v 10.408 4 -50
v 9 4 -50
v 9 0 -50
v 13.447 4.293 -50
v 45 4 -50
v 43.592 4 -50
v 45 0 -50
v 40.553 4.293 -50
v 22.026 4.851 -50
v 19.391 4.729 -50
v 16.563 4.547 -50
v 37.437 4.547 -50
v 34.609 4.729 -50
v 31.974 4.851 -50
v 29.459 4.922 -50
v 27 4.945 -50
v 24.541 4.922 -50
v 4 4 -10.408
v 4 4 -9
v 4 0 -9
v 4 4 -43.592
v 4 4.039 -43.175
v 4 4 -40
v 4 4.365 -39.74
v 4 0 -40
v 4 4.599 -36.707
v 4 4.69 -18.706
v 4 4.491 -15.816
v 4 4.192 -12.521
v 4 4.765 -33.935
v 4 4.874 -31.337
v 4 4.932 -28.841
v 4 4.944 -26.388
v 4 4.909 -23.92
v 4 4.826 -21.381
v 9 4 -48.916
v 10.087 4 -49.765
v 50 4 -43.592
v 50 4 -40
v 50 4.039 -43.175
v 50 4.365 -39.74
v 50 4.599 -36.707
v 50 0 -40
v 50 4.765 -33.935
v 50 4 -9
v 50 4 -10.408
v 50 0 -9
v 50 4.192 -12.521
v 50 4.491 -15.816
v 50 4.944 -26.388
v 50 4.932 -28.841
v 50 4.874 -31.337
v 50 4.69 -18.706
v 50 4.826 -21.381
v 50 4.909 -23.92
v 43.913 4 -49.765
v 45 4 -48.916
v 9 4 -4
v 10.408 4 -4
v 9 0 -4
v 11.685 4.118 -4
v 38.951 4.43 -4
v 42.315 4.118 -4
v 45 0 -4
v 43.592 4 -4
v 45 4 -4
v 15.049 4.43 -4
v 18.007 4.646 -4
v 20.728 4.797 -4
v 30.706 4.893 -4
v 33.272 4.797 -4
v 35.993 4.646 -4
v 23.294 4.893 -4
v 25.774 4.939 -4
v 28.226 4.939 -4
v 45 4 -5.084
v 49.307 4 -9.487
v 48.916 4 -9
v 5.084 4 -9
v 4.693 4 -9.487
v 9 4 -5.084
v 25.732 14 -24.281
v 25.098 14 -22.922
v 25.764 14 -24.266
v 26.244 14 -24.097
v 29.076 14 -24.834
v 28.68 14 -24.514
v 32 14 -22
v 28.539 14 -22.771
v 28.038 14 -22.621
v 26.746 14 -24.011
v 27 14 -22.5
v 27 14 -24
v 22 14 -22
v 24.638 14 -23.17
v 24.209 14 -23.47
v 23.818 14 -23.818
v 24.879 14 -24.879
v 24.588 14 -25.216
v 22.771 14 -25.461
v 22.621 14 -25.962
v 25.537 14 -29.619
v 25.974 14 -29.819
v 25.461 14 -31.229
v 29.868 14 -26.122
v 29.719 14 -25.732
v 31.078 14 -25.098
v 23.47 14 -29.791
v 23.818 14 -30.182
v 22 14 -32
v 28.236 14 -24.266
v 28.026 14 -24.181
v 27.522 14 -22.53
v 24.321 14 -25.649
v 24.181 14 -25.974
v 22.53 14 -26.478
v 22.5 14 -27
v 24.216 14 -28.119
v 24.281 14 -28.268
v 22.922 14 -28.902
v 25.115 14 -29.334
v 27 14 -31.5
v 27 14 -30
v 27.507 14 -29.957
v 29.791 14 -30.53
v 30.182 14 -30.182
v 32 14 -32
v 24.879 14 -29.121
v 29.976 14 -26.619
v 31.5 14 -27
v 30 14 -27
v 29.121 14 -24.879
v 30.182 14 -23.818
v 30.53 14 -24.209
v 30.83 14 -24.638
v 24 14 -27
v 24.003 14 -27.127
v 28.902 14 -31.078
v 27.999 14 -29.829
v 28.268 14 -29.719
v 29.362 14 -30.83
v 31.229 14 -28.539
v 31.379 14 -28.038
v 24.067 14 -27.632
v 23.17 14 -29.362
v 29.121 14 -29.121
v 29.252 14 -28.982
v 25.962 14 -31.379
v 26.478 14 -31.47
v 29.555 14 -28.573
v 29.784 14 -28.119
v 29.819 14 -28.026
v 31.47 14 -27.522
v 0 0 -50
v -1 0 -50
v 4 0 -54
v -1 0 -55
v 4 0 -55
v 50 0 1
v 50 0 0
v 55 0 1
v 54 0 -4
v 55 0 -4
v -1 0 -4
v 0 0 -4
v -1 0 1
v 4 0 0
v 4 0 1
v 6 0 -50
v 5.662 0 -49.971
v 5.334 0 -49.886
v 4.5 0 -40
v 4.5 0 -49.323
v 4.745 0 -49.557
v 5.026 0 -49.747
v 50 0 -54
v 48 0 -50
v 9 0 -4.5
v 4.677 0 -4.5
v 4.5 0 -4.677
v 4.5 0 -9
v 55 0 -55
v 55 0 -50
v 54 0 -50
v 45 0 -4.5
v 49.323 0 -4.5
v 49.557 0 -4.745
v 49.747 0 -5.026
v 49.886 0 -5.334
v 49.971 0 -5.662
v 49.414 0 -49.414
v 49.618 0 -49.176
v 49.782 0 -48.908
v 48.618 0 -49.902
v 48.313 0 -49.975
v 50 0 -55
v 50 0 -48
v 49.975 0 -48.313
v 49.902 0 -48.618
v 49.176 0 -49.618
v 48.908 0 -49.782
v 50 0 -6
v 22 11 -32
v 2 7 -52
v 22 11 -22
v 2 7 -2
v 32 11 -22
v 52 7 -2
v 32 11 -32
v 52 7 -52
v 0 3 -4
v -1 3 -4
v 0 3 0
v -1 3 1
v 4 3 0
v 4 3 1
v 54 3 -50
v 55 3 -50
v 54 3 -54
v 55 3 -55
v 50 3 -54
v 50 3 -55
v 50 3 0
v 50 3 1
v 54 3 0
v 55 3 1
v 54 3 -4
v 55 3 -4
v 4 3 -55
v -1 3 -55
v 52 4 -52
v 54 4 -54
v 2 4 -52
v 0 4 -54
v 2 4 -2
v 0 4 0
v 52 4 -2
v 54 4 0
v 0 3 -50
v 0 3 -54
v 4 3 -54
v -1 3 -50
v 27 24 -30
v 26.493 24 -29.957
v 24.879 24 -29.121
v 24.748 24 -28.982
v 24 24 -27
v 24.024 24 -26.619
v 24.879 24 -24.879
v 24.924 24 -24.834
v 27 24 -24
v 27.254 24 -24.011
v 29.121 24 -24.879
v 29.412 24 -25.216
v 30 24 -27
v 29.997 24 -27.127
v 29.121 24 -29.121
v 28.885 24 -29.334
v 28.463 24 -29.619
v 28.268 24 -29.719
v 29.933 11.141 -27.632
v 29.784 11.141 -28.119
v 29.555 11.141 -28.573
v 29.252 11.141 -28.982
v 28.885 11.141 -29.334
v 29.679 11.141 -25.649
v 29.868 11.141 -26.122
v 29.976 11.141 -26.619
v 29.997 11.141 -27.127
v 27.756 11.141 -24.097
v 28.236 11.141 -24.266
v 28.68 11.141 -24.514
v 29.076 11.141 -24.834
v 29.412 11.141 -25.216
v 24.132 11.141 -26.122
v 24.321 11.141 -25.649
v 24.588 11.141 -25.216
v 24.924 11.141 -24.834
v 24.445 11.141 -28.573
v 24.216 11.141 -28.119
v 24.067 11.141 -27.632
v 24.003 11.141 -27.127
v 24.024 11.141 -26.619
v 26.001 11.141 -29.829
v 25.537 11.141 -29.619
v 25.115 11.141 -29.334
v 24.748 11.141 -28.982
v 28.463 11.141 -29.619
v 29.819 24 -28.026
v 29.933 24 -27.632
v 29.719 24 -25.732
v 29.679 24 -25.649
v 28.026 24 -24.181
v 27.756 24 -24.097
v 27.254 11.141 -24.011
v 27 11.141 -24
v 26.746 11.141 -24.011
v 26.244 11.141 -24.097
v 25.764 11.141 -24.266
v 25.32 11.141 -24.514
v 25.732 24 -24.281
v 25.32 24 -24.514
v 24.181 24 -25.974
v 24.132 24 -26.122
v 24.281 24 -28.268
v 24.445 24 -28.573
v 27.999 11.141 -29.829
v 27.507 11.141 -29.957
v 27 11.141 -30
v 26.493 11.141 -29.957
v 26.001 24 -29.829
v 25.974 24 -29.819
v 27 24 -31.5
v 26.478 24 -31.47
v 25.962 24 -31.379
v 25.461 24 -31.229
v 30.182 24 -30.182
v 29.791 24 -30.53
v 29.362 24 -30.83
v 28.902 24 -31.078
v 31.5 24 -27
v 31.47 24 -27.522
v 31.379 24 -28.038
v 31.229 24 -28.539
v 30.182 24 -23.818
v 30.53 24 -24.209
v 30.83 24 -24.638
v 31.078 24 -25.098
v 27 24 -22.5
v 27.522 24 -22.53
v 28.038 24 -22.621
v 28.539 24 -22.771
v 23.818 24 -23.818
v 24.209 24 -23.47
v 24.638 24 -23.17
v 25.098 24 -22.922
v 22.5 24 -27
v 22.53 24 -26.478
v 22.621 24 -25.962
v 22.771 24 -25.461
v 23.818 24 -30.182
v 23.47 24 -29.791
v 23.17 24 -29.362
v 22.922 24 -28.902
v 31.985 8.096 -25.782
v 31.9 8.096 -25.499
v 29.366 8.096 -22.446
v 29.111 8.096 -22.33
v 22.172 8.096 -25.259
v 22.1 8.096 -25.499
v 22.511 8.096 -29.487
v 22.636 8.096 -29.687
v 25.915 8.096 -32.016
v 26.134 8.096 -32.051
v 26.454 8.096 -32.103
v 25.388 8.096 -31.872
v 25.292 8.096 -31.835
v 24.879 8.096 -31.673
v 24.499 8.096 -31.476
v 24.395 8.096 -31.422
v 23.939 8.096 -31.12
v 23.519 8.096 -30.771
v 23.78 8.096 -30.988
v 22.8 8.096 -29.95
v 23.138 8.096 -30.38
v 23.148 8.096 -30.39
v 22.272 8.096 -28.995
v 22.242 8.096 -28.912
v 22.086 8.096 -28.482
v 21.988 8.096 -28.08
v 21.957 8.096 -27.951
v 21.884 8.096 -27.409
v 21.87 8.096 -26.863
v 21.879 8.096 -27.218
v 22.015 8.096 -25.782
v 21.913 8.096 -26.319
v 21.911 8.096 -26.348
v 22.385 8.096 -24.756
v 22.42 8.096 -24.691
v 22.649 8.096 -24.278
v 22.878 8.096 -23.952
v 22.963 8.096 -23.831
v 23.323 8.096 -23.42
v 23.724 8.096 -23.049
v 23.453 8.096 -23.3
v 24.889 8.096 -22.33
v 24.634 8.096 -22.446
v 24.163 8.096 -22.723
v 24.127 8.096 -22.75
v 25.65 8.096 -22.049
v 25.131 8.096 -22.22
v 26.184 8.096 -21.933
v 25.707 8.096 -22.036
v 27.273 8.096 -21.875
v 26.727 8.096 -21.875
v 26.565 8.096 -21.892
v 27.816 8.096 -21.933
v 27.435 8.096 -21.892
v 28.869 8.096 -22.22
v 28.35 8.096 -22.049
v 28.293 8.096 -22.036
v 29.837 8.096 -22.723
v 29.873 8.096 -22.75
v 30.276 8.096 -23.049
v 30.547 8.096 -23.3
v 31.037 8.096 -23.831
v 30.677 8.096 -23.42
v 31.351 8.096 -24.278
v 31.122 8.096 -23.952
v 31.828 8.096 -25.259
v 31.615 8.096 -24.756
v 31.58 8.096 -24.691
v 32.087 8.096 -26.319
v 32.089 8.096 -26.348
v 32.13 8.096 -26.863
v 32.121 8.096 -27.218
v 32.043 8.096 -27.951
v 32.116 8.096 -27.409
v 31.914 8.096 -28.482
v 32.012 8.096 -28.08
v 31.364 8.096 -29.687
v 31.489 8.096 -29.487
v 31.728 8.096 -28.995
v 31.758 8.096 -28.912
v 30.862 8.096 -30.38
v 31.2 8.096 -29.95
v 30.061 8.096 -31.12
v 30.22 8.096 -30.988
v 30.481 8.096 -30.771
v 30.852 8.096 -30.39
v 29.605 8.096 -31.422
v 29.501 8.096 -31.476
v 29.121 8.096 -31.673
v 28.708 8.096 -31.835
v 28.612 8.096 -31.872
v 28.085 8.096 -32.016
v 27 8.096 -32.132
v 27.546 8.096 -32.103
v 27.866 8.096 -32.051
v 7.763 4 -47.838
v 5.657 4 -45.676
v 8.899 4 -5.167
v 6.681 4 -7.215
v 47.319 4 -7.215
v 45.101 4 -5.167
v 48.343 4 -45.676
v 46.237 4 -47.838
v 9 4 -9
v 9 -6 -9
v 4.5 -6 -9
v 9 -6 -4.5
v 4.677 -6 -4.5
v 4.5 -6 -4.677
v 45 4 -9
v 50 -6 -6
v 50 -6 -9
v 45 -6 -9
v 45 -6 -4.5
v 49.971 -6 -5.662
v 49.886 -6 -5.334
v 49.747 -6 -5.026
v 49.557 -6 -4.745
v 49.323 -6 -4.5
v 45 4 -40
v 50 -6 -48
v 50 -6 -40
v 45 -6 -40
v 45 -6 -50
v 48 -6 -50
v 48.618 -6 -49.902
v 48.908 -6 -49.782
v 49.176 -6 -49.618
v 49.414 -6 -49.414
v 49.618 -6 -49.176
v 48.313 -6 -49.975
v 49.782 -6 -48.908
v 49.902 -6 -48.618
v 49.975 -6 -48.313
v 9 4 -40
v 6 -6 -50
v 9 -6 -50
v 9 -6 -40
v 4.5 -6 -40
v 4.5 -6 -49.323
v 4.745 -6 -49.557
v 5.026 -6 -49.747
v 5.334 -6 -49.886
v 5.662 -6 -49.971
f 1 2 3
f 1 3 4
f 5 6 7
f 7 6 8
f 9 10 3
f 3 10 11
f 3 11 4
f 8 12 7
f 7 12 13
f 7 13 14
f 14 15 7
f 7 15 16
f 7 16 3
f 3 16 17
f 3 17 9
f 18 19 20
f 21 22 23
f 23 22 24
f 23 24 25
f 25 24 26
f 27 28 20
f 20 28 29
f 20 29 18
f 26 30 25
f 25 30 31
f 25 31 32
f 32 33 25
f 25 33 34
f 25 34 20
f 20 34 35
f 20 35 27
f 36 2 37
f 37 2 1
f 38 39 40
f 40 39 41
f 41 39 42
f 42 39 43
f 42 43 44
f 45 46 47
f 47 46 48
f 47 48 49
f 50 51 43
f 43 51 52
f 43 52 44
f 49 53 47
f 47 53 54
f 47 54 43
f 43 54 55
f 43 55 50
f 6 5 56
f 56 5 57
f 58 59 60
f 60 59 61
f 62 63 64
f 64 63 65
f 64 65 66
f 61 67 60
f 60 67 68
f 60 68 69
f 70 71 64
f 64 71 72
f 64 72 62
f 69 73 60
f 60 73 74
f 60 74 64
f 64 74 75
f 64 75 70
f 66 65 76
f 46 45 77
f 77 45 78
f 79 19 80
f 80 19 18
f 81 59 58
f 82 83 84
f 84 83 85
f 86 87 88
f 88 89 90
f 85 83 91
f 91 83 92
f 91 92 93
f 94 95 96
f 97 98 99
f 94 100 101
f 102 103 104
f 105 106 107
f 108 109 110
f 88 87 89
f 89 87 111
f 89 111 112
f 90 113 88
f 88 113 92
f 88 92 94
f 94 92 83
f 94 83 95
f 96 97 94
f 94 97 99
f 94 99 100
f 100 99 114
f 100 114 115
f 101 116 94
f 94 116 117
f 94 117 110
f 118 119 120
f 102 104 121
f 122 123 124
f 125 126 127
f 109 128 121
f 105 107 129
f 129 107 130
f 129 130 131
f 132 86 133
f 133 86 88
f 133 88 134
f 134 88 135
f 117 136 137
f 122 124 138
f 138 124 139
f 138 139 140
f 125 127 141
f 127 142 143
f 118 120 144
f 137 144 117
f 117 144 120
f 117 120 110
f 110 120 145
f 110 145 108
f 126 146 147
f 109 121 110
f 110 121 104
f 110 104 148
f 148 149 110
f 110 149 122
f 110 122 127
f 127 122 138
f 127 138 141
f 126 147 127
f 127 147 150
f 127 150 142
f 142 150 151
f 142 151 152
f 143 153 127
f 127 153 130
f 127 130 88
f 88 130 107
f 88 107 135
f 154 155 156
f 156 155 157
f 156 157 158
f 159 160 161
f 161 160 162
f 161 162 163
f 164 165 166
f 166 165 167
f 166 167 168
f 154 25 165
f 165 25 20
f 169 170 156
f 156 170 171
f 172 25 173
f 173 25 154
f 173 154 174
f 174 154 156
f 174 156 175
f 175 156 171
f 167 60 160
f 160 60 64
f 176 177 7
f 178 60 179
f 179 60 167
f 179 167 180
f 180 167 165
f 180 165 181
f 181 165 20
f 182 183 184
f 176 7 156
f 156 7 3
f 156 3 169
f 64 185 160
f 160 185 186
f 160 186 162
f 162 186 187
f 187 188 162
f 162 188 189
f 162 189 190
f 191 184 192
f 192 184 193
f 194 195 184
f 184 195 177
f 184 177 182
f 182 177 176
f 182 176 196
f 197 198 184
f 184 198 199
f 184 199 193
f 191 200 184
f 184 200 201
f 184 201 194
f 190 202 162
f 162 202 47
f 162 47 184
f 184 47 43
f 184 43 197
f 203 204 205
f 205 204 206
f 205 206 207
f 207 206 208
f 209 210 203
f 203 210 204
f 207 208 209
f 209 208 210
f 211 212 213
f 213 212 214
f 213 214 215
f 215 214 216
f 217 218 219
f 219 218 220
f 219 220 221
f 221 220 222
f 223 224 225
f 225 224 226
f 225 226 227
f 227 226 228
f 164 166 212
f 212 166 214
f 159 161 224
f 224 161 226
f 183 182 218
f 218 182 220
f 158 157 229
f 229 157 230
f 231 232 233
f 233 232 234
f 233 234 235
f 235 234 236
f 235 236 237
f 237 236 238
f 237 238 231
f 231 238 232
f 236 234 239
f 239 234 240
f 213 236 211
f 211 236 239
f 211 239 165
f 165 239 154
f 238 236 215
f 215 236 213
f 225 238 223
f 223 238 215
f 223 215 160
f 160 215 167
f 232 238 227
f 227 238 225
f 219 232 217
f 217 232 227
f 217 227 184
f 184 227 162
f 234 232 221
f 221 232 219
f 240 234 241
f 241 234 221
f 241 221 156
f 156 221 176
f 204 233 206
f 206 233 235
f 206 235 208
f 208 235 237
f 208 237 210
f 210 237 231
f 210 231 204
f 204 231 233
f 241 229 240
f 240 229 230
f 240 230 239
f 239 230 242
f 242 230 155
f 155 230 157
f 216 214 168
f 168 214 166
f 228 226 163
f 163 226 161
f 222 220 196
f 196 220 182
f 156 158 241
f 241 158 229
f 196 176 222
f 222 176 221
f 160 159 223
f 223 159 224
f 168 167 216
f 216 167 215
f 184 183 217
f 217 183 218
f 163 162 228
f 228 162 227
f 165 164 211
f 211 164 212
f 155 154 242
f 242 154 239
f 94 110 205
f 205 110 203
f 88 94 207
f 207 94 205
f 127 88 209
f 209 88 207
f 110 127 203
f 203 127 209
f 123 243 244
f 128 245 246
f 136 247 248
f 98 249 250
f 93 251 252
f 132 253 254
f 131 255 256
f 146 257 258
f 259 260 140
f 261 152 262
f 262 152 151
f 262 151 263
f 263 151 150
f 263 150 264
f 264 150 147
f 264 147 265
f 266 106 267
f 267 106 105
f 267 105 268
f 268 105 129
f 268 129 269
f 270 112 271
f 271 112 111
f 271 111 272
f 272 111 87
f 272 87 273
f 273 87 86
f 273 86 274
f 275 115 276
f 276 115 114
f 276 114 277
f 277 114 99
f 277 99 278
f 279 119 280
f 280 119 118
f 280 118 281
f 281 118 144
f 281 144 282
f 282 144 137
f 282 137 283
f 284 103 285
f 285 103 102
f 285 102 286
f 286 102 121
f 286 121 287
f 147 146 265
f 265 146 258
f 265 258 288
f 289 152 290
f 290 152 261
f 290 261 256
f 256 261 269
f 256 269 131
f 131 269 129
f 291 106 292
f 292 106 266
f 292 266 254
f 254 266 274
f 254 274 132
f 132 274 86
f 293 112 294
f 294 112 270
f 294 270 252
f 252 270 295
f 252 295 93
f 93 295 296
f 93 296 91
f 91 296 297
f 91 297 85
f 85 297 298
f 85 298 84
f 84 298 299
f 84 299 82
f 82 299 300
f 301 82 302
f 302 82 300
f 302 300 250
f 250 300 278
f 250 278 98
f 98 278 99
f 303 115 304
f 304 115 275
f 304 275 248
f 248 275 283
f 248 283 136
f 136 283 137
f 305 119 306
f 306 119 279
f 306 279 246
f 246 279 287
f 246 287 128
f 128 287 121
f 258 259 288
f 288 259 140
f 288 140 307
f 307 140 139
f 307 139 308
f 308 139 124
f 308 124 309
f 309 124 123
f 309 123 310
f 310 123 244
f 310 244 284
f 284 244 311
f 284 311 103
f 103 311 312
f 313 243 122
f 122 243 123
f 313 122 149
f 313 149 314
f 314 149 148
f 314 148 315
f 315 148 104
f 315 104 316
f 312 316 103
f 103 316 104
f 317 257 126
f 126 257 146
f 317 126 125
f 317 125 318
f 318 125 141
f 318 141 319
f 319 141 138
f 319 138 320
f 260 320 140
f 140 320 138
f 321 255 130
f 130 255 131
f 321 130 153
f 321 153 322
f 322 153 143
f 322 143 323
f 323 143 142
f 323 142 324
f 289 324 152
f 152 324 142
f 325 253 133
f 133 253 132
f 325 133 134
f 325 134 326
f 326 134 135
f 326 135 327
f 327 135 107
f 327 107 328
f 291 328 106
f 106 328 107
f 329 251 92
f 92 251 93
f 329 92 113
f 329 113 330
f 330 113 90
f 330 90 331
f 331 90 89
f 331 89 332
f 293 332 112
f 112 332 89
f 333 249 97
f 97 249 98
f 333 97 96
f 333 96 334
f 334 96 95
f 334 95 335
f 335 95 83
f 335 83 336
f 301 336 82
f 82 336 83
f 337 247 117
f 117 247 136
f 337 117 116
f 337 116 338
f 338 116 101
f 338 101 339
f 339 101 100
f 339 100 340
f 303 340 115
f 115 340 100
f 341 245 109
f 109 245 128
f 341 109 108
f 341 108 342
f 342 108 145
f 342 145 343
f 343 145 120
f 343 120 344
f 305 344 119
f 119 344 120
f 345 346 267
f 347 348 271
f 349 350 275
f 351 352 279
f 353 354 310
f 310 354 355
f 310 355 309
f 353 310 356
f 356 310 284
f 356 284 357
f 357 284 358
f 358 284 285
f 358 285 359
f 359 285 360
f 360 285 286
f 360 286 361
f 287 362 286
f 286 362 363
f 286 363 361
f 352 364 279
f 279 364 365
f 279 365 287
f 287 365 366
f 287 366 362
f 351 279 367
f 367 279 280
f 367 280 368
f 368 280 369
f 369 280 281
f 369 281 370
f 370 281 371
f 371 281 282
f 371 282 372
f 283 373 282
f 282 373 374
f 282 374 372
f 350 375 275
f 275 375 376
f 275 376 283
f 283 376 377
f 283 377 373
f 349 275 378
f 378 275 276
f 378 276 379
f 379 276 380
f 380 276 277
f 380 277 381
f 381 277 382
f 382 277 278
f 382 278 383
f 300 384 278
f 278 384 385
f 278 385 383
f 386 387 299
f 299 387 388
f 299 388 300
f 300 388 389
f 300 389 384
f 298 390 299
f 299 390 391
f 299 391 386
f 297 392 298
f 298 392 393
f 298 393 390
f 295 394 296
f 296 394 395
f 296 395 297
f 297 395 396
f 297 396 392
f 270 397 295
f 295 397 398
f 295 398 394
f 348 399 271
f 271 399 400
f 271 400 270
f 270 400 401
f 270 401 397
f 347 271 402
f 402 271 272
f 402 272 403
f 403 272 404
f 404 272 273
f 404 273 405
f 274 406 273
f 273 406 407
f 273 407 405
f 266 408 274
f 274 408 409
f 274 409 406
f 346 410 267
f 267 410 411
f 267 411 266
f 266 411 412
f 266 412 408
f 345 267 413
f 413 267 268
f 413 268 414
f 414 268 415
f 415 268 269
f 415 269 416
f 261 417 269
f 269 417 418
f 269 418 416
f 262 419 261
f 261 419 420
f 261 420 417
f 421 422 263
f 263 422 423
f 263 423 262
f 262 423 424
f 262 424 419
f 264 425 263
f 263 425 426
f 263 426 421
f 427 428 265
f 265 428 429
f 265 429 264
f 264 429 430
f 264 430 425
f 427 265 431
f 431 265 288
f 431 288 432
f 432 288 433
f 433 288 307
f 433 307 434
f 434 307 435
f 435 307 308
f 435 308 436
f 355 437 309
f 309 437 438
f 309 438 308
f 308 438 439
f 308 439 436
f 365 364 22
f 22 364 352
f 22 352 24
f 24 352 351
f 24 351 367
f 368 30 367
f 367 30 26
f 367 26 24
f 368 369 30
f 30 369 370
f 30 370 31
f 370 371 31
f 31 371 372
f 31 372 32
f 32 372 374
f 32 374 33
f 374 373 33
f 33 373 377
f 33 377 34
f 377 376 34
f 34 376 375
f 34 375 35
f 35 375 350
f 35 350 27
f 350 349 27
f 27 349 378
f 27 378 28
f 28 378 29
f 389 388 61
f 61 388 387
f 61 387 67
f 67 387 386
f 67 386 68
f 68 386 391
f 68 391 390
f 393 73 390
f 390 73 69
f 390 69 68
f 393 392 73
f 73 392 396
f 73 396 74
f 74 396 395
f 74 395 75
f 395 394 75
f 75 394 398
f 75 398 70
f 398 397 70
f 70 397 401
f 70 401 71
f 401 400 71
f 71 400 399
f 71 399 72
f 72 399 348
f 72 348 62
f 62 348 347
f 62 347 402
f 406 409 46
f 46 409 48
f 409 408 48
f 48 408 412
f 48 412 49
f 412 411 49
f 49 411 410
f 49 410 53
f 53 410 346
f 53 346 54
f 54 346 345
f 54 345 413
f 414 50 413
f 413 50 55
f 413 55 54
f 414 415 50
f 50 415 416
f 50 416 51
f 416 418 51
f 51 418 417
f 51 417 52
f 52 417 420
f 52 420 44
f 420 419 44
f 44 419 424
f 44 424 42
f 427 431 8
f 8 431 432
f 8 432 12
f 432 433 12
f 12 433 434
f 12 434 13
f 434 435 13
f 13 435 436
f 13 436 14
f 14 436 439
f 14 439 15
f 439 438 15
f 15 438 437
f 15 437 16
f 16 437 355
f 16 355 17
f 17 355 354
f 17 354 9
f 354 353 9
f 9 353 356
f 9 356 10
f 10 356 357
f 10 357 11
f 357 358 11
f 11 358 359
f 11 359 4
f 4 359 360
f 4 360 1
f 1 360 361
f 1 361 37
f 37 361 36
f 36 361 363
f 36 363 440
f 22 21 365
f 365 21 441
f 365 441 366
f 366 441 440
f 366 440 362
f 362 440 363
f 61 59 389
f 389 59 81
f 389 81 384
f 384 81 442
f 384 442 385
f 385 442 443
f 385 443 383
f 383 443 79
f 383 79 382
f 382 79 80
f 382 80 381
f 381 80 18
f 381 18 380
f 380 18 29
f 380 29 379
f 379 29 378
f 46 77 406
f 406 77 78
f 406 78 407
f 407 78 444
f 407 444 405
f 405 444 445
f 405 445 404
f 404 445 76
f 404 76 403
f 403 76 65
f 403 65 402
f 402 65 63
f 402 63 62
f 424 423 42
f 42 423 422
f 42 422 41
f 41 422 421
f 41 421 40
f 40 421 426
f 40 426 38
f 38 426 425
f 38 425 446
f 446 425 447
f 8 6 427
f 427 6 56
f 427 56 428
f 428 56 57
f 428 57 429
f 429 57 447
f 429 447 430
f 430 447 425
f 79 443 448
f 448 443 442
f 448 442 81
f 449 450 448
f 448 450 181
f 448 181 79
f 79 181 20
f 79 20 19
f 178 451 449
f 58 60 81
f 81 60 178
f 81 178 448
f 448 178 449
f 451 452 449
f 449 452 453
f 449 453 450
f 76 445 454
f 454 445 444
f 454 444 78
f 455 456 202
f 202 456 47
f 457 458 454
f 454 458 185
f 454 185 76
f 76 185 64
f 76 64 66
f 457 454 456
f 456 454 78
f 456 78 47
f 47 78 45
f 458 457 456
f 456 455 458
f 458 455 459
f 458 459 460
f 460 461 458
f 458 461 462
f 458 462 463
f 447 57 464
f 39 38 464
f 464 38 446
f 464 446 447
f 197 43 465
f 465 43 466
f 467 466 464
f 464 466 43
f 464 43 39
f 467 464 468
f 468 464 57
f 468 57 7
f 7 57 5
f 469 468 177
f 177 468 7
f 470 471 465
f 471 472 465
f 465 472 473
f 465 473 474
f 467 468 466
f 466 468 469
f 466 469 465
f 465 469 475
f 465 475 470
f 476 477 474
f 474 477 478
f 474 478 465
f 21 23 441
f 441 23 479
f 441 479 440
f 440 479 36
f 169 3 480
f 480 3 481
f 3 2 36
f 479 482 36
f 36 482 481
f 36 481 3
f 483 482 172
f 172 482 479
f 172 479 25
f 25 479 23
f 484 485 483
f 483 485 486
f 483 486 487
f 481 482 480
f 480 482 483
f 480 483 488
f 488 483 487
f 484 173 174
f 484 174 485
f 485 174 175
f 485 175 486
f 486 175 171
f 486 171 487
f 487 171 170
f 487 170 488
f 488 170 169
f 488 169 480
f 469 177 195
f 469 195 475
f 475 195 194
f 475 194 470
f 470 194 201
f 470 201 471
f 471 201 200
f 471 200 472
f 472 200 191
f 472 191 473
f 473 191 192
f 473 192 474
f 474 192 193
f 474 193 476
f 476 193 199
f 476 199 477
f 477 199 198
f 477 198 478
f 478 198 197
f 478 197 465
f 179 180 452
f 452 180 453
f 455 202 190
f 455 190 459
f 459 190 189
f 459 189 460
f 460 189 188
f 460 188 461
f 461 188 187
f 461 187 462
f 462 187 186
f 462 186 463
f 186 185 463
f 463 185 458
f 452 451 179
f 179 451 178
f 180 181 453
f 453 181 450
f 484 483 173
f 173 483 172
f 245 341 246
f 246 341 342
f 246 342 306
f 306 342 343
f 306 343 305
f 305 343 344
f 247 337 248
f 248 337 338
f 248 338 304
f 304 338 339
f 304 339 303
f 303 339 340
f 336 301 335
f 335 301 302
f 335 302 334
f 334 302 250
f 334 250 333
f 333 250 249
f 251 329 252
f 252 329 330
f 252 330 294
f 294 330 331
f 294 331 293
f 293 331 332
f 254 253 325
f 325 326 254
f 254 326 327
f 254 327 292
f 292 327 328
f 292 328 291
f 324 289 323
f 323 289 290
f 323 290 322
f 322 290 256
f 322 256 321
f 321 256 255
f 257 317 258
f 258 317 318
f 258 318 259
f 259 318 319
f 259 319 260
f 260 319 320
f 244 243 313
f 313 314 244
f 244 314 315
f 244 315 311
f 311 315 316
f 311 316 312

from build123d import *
from build123d.topology import SkipClean

# Parameters (mm, degrees)
SKETCH_1_W          = 54
SKETCH_1_H          = 54
EXTRUDE_1_DEPTH     = 4
SKETCH_2_W          = 50
SKETCH_2_H          = 50
EXTRUDE_2_DEPTH     = 8
CHAMFER_1_SIZE      = 5
CHAMFER_1_SIZE_2    = 25
SKETCH_3_W          = 56
SKETCH_3_H          = 56
EXTRUDE_3_DEPTH     = 3
SKETCH_4_W          = 46
SKETCH_4_H          = 1
SKETCH_4_W_2        = 1
SKETCH_4_H_2        = 46
CUT_EXTRUDE_1_DEPTH = 3
EXTRUDE_START       = 10
SKETCH_5_W          = 10
SKETCH_5_H          = 10
EXTRUDE_4_DEPTH     = 4
EXTRUDE_5_DEPTH     = 10
SKETCH_10_W         = 46
SKETCH_10_H         = 46
CUT_EXTRUDE_2_DEPTH = 4
SKETCH_12_R         = 3
CUT_EXTRUDE_3_DEPTH = 15
CHAMFER_2_SIZE      = 5
CHAMFER_2_SIZE2     = 7.140740034
CHAMFER_3_SIZE      = 5
CHAMFER_3_SIZE_2    = 20.3603283
SKETCH_13_W         = 5
SKETCH_13_H         = 5
EXTRUDE_6_DEPTH     = 10
SKETCH_14_W         = 5
SKETCH_14_H         = 10
EXTRUDE_7_DEPTH     = 10
FILLET_1_R          = 2
CUT_EXTRUDE_4_DEPTH = 6
SKETCH_16_W         = 12.181950641
SKETCH_16_H         = 4.017842963
CUT_EXTRUDE_5_DEPTH = 82.012344772


with BuildPart() as part:
    # Эскиз1 → Бобышка-Вытянуть1 (new body)
    with BuildSketch(Plane(origin=(0, 0, 0), x_dir=(1, 0, 0), z_dir=(0, 1, 0))):
        with Locations((27, 27)):
            Rectangle(SKETCH_1_W, SKETCH_1_H)
    extrude(amount=EXTRUDE_1_DEPTH)

    # Эскиз2 → Бобышка-Вытянуть2 (add)
    with BuildSketch(Plane(origin=(0, 4, 0), x_dir=(1, 0, 0), z_dir=(0, 1, 0))):
        with Locations((27, 27)):
            Rectangle(SKETCH_2_W, SKETCH_2_H)
    extrude(amount=EXTRUDE_2_DEPTH)

    # Фаска1
    # the kernel refuses this chamfer: 25, 5 mm, written as the material it takes off along each edge
    with BuildSketch(Plane(origin=(2, 12, -116.953302157), x_dir=(-0.18544098588999025, -0.9826554028509427, 0), z_dir=(0, 0, 1)), Plane(origin=(-62.953302157, 12, -2), x_dir=(0, -0.9826554028509427, 0.18544098588999025), z_dir=(1, 0, 0)), Plane(origin=(52, 12, 62.953302157), x_dir=(0.18544098588999086, -0.9826554028509427, 0), z_dir=(0, 0, -1)), Plane(origin=(116.953302157, 12, -52), x_dir=(0, -0.9826554028509427, -0.18544098588999086), z_dir=(-1, 0, 0))) as chamfer_1_piece_1:
        Polygon((CHAMFER_1_SIZE * 0.982655402851, CHAMFER_1_SIZE * 0.18544098589), (-CHAMFER_1_SIZE_2 * 0.18544098589, CHAMFER_1_SIZE_2 * 0.982655402851), (0, 0), align=None)
    extrude(amount=179.906604315, mode=Mode.SUBTRACT)

    # Эскиз3 → Бобышка-Вытянуть3 (add)
    with BuildSketch(Plane(origin=(0, 0, 0), x_dir=(1, 0, 0), z_dir=(0, 1, 0))):
        with Locations((27, 27)):
            Rectangle(SKETCH_3_W, SKETCH_3_H)
    extrude(amount=EXTRUDE_3_DEPTH)

    # Эскиз4 → Вырез-Вытянуть1 (cut)
    with BuildSketch(Plane(origin=(0, 3, 0), x_dir=(1, 0, 0), z_dir=(0, 1, 0))):
        with Locations((27, 54.5)):
            Rectangle(SKETCH_4_W, SKETCH_4_H)
        with Locations((-0.5, 27)):
            Rectangle(SKETCH_4_W_2, SKETCH_4_H_2)
        with Locations((54.5, 27)):
            Rectangle(SKETCH_4_W_2, SKETCH_4_H_2)
        with Locations((27, -0.5)):
            Rectangle(SKETCH_4_W, SKETCH_4_H)
    extrude(amount=-CUT_EXTRUDE_1_DEPTH, mode=Mode.SUBTRACT)

    # Эскиз5 → Бобышка-Вытянуть4 (add)
    with BuildSketch(Plane(origin=(0, 0, 0), x_dir=(1, 0, 0), z_dir=(0, 1, 0)).offset(EXTRUDE_START)):
        with Locations((27, 27)):
            Rectangle(SKETCH_5_W, SKETCH_5_H)
    extrude(amount=EXTRUDE_4_DEPTH)

    # Эскиз6 → Бобышка-Вытянуть5 (add)
    with BuildSketch(Plane(origin=(0, 14, 0), x_dir=(1, 0, 0), z_dir=(0, 1, 0))):
        with BuildLine():
            Line((27, 30), (27, 31.5))
            ThreePointArc((27, 31.5), (26.2185832, 31.431634889), (25.460909355, 31.228616794))
            Line((25.460909355, 31.228616794), (25.97393957, 29.819077862))
            ThreePointArc((25.97393957, 29.819077862), (26.479055467, 29.954423259), (27, 30))
        make_face()
        with BuildLine():
            Line((29.121320344, 29.121320344), (30.181980515, 30.181980515))
            ThreePointArc((30.181980515, 30.181980515), (29.581093964, 30.686184199), (28.901782178, 31.078385042))
            Line((28.901782178, 31.078385042), (28.267854785, 29.718923361))
            ThreePointArc((28.267854785, 29.718923361), (28.720729309, 29.457456133), (29.121320344, 29.121320344))
        make_face()
        with BuildLine():
            Line((30, 27), (31.5, 27))
            ThreePointArc((31.5, 27), (31.431634889, 27.7814168), (31.228616794, 28.539090645))
            Line((31.228616794, 28.539090645), (29.819077862, 28.02606043))
            ThreePointArc((29.819077862, 28.02606043), (29.954423259, 27.520944533), (30, 27))
        make_face()
        with BuildLine():
            Line((29.121320344, 24.878679656), (30.181980515, 23.818019485))
            ThreePointArc((30.181980515, 23.818019485), (30.686184199, 24.418906036), (31.078385042, 25.098217822))
            Line((31.078385042, 25.098217822), (29.718923361, 25.732145215))
            ThreePointArc((29.718923361, 25.732145215), (29.457456133, 25.279270691), (29.121320344, 24.878679656))
        make_face()
        with BuildLine():
            Line((27, 24), (27, 22.5))
            ThreePointArc((27, 22.5), (27.7814168, 22.568365111), (28.539090645, 22.771383206))
            Line((28.539090645, 22.771383206), (28.02606043, 24.180922138))
            ThreePointArc((28.02606043, 24.180922138), (27.520944533, 24.045576741), (27, 24))
        make_face()
        with BuildLine():
            Line((24.878679656, 24.878679656), (23.818019485, 23.818019485))
            ThreePointArc((23.818019485, 23.818019485), (24.418906036, 23.313815801), (25.098217822, 22.921614958))
            Line((25.098217822, 22.921614958), (25.732145215, 24.281076639))
            ThreePointArc((25.732145215, 24.281076639), (25.279270691, 24.542543867), (24.878679656, 24.878679656))
        make_face()
        with BuildLine():
            Line((24, 27), (22.5, 27))
            ThreePointArc((22.5, 27), (22.568365111, 26.2185832), (22.771383206, 25.460909355))
            Line((22.771383206, 25.460909355), (24.180922138, 25.97393957))
            ThreePointArc((24.180922138, 25.97393957), (24.045576741, 26.479055467), (24, 27))
        make_face()
        with BuildLine():
            Line((24.878679656, 29.121320344), (23.818019485, 30.181980515))
            ThreePointArc((23.818019485, 30.181980515), (23.313815801, 29.581093964), (22.921614958, 28.901782178))
            Line((22.921614958, 28.901782178), (24.281076639, 28.267854785))
            ThreePointArc((24.281076639, 28.267854785), (24.542543867, 28.720729309), (24.878679656, 29.121320344))
        make_face()
    extrude(amount=EXTRUDE_5_DEPTH)

    # Эскиз9 → Повернуть1 (revolve)
    with BuildSketch(Plane(origin=(27, 0, 0), x_dir=(0, 0, -1), z_dir=(1, 0, 0))):
        with BuildLine():
            Line((27, 24), (33, 24))
            Line((33, 24), (28.599558116, 25.80595603))
            ThreePointArc((28.599558116, 25.80595603), (27.95267314, 26.60779708), (27, 27))
            Line((27, 27), (27, 24))
        make_face()
    revolve(axis=Axis((27, 24, -27), (0, 1, 0)))

    # Эскиз10 → Вырез-Вытянуть2 (cut)
    with BuildSketch(Plane(origin=(0, 0, 0), x_dir=(1, 0, 0), z_dir=(0, 1, 0))):
        with Locations((27, 27)):
            Rectangle(SKETCH_10_W, SKETCH_10_H)
    extrude(amount=CUT_EXTRUDE_2_DEPTH, mode=Mode.SUBTRACT)

    # Эскиз12 → Вырез-Вытянуть3 (cut)
    with SkipClean():  # the faces are left unmerged after this step: merging them gives an invalid solid
        with BuildSketch(Plane(origin=(0, 0, 0), x_dir=(1, 0, 0), z_dir=(0, 1, 0))):
            with Locations(Location((27, 27, 0), (0, 0, 270))):
                Circle(SKETCH_12_R)
        extrude(amount=CUT_EXTRUDE_3_DEPTH, mode=Mode.SUBTRACT)
    add(part.part.scale(1), mode=Mode.REPLACE)  # the faces are merged on a copy

    # Фаска2
    chamfer_2_edges = [part.edges().sort_by_distance(p)[0] for p in [
        (27, 4, -30),
    ]]
    chamfer_2_side = [part.faces().sort_by_distance(p)[0] for p in [
        (27, 4, -49.349461761),
    ]]
    chamfer(chamfer_2_edges, length=CHAMFER_2_SIZE, length2=CHAMFER_2_SIZE2, reference=chamfer_2_side[0])

    # Фаска3
    # the kernel refuses this chamfer: 20.3603283, 5 mm, written as the material it takes off along each edge
    with BuildSketch(Plane(origin=(27, 4, -27), x_dir=(0, 0, 1), z_dir=(1, 0, 0))) as chamfer_3_piece_1_section:
        Polygon((8 - CHAMFER_3_SIZE * 0.573576436351, -CHAMFER_3_SIZE * 0.819152044289), (8 + CHAMFER_3_SIZE_2, 0), (8, 0), align=None)
    chamfer_3_piece_1 = revolve(axis=Axis((27, 4, -27), (0, -1, 0)), mode=Mode.PRIVATE)
    chamfer_3_piece_1 = split(chamfer_3_piece_1, bisect_by=Plane(origin=(27, 5.887283675, -50), z_dir=(0, 0, 1)), keep=Keep.TOP, mode=Mode.PRIVATE)
    chamfer_3_piece_1 = split(chamfer_3_piece_1, bisect_by=Plane(origin=(4, 5.887283675, -43.717905574), z_dir=(1, 0, 0)), keep=Keep.TOP, mode=Mode.PRIVATE)
    chamfer_3_piece_1 = split(chamfer_3_piece_1, bisect_by=Plane(origin=(50, 5.887283675, -43.717905574), z_dir=(-1, 0, 0)), keep=Keep.TOP, mode=Mode.PRIVATE)
    chamfer_3_piece_1 = split(chamfer_3_piece_1, bisect_by=Plane(origin=(27, 5.887283675, -4), z_dir=(0, 0, -1)), keep=Keep.TOP, mode=Mode.PRIVATE)
    add(chamfer_3_piece_1, mode=Mode.SUBTRACT)

    # Эскиз13 → Бобышка-Вытянуть6 (add)
    with SkipClean():  # the faces are left unmerged after this step: merging them gives an invalid solid
        with BuildSketch(Plane.XZ.offset(-4)):
            with Locations((6.5, -6.5)):
                Rectangle(SKETCH_13_W, SKETCH_13_H)
            with Locations((47.5, -6.5)):
                Rectangle(SKETCH_13_W, SKETCH_13_H)
        extrude(amount=EXTRUDE_6_DEPTH)

    # Эскиз14 → Бобышка-Вытянуть7 (add)
    with SkipClean():  # the faces are left unmerged after this step: merging them gives an invalid solid
        with BuildSketch(Plane.XZ.offset(-4)):
            with Locations((47.5, -45)):
                Rectangle(SKETCH_14_W, SKETCH_14_H)
            with Locations((6.5, -45)):
                Rectangle(SKETCH_14_W, SKETCH_14_H)
        extrude(amount=EXTRUDE_7_DEPTH)

    # Скругление1
    fillet_1_edges = [part.edges().sort_by_distance(p)[0] for p in [
        (4, -3, -4),
        (50, -3, -4),
        (50, -3, -50),
        (4, -3, -50),
    ]]
    fillet(fillet_1_edges, radius=FILLET_1_R)

    # Эскиз15 → Вырез-Вытянуть4 (cut)
    with BuildSketch(Plane.XZ.offset(6)):
        Polygon((51, -4.5), (4.5, -4.5), (4.5, -51), (2.5, -51), (2.5, -2.5), (51, -2.5), align=None)
    extrude(amount=-CUT_EXTRUDE_4_DEPTH, mode=Mode.SUBTRACT)

    # Эскиз16 → Вырез-Вытянуть5 (cut, through all)
    with BuildSketch(Plane.ZY.offset(-2)):
        with Locations((-26.909024679, 26.008921482)):
            Rectangle(SKETCH_16_W, SKETCH_16_H)
    extrude(amount=-CUT_EXTRUDE_5_DEPTH, mode=Mode.SUBTRACT)


solid = part.part
